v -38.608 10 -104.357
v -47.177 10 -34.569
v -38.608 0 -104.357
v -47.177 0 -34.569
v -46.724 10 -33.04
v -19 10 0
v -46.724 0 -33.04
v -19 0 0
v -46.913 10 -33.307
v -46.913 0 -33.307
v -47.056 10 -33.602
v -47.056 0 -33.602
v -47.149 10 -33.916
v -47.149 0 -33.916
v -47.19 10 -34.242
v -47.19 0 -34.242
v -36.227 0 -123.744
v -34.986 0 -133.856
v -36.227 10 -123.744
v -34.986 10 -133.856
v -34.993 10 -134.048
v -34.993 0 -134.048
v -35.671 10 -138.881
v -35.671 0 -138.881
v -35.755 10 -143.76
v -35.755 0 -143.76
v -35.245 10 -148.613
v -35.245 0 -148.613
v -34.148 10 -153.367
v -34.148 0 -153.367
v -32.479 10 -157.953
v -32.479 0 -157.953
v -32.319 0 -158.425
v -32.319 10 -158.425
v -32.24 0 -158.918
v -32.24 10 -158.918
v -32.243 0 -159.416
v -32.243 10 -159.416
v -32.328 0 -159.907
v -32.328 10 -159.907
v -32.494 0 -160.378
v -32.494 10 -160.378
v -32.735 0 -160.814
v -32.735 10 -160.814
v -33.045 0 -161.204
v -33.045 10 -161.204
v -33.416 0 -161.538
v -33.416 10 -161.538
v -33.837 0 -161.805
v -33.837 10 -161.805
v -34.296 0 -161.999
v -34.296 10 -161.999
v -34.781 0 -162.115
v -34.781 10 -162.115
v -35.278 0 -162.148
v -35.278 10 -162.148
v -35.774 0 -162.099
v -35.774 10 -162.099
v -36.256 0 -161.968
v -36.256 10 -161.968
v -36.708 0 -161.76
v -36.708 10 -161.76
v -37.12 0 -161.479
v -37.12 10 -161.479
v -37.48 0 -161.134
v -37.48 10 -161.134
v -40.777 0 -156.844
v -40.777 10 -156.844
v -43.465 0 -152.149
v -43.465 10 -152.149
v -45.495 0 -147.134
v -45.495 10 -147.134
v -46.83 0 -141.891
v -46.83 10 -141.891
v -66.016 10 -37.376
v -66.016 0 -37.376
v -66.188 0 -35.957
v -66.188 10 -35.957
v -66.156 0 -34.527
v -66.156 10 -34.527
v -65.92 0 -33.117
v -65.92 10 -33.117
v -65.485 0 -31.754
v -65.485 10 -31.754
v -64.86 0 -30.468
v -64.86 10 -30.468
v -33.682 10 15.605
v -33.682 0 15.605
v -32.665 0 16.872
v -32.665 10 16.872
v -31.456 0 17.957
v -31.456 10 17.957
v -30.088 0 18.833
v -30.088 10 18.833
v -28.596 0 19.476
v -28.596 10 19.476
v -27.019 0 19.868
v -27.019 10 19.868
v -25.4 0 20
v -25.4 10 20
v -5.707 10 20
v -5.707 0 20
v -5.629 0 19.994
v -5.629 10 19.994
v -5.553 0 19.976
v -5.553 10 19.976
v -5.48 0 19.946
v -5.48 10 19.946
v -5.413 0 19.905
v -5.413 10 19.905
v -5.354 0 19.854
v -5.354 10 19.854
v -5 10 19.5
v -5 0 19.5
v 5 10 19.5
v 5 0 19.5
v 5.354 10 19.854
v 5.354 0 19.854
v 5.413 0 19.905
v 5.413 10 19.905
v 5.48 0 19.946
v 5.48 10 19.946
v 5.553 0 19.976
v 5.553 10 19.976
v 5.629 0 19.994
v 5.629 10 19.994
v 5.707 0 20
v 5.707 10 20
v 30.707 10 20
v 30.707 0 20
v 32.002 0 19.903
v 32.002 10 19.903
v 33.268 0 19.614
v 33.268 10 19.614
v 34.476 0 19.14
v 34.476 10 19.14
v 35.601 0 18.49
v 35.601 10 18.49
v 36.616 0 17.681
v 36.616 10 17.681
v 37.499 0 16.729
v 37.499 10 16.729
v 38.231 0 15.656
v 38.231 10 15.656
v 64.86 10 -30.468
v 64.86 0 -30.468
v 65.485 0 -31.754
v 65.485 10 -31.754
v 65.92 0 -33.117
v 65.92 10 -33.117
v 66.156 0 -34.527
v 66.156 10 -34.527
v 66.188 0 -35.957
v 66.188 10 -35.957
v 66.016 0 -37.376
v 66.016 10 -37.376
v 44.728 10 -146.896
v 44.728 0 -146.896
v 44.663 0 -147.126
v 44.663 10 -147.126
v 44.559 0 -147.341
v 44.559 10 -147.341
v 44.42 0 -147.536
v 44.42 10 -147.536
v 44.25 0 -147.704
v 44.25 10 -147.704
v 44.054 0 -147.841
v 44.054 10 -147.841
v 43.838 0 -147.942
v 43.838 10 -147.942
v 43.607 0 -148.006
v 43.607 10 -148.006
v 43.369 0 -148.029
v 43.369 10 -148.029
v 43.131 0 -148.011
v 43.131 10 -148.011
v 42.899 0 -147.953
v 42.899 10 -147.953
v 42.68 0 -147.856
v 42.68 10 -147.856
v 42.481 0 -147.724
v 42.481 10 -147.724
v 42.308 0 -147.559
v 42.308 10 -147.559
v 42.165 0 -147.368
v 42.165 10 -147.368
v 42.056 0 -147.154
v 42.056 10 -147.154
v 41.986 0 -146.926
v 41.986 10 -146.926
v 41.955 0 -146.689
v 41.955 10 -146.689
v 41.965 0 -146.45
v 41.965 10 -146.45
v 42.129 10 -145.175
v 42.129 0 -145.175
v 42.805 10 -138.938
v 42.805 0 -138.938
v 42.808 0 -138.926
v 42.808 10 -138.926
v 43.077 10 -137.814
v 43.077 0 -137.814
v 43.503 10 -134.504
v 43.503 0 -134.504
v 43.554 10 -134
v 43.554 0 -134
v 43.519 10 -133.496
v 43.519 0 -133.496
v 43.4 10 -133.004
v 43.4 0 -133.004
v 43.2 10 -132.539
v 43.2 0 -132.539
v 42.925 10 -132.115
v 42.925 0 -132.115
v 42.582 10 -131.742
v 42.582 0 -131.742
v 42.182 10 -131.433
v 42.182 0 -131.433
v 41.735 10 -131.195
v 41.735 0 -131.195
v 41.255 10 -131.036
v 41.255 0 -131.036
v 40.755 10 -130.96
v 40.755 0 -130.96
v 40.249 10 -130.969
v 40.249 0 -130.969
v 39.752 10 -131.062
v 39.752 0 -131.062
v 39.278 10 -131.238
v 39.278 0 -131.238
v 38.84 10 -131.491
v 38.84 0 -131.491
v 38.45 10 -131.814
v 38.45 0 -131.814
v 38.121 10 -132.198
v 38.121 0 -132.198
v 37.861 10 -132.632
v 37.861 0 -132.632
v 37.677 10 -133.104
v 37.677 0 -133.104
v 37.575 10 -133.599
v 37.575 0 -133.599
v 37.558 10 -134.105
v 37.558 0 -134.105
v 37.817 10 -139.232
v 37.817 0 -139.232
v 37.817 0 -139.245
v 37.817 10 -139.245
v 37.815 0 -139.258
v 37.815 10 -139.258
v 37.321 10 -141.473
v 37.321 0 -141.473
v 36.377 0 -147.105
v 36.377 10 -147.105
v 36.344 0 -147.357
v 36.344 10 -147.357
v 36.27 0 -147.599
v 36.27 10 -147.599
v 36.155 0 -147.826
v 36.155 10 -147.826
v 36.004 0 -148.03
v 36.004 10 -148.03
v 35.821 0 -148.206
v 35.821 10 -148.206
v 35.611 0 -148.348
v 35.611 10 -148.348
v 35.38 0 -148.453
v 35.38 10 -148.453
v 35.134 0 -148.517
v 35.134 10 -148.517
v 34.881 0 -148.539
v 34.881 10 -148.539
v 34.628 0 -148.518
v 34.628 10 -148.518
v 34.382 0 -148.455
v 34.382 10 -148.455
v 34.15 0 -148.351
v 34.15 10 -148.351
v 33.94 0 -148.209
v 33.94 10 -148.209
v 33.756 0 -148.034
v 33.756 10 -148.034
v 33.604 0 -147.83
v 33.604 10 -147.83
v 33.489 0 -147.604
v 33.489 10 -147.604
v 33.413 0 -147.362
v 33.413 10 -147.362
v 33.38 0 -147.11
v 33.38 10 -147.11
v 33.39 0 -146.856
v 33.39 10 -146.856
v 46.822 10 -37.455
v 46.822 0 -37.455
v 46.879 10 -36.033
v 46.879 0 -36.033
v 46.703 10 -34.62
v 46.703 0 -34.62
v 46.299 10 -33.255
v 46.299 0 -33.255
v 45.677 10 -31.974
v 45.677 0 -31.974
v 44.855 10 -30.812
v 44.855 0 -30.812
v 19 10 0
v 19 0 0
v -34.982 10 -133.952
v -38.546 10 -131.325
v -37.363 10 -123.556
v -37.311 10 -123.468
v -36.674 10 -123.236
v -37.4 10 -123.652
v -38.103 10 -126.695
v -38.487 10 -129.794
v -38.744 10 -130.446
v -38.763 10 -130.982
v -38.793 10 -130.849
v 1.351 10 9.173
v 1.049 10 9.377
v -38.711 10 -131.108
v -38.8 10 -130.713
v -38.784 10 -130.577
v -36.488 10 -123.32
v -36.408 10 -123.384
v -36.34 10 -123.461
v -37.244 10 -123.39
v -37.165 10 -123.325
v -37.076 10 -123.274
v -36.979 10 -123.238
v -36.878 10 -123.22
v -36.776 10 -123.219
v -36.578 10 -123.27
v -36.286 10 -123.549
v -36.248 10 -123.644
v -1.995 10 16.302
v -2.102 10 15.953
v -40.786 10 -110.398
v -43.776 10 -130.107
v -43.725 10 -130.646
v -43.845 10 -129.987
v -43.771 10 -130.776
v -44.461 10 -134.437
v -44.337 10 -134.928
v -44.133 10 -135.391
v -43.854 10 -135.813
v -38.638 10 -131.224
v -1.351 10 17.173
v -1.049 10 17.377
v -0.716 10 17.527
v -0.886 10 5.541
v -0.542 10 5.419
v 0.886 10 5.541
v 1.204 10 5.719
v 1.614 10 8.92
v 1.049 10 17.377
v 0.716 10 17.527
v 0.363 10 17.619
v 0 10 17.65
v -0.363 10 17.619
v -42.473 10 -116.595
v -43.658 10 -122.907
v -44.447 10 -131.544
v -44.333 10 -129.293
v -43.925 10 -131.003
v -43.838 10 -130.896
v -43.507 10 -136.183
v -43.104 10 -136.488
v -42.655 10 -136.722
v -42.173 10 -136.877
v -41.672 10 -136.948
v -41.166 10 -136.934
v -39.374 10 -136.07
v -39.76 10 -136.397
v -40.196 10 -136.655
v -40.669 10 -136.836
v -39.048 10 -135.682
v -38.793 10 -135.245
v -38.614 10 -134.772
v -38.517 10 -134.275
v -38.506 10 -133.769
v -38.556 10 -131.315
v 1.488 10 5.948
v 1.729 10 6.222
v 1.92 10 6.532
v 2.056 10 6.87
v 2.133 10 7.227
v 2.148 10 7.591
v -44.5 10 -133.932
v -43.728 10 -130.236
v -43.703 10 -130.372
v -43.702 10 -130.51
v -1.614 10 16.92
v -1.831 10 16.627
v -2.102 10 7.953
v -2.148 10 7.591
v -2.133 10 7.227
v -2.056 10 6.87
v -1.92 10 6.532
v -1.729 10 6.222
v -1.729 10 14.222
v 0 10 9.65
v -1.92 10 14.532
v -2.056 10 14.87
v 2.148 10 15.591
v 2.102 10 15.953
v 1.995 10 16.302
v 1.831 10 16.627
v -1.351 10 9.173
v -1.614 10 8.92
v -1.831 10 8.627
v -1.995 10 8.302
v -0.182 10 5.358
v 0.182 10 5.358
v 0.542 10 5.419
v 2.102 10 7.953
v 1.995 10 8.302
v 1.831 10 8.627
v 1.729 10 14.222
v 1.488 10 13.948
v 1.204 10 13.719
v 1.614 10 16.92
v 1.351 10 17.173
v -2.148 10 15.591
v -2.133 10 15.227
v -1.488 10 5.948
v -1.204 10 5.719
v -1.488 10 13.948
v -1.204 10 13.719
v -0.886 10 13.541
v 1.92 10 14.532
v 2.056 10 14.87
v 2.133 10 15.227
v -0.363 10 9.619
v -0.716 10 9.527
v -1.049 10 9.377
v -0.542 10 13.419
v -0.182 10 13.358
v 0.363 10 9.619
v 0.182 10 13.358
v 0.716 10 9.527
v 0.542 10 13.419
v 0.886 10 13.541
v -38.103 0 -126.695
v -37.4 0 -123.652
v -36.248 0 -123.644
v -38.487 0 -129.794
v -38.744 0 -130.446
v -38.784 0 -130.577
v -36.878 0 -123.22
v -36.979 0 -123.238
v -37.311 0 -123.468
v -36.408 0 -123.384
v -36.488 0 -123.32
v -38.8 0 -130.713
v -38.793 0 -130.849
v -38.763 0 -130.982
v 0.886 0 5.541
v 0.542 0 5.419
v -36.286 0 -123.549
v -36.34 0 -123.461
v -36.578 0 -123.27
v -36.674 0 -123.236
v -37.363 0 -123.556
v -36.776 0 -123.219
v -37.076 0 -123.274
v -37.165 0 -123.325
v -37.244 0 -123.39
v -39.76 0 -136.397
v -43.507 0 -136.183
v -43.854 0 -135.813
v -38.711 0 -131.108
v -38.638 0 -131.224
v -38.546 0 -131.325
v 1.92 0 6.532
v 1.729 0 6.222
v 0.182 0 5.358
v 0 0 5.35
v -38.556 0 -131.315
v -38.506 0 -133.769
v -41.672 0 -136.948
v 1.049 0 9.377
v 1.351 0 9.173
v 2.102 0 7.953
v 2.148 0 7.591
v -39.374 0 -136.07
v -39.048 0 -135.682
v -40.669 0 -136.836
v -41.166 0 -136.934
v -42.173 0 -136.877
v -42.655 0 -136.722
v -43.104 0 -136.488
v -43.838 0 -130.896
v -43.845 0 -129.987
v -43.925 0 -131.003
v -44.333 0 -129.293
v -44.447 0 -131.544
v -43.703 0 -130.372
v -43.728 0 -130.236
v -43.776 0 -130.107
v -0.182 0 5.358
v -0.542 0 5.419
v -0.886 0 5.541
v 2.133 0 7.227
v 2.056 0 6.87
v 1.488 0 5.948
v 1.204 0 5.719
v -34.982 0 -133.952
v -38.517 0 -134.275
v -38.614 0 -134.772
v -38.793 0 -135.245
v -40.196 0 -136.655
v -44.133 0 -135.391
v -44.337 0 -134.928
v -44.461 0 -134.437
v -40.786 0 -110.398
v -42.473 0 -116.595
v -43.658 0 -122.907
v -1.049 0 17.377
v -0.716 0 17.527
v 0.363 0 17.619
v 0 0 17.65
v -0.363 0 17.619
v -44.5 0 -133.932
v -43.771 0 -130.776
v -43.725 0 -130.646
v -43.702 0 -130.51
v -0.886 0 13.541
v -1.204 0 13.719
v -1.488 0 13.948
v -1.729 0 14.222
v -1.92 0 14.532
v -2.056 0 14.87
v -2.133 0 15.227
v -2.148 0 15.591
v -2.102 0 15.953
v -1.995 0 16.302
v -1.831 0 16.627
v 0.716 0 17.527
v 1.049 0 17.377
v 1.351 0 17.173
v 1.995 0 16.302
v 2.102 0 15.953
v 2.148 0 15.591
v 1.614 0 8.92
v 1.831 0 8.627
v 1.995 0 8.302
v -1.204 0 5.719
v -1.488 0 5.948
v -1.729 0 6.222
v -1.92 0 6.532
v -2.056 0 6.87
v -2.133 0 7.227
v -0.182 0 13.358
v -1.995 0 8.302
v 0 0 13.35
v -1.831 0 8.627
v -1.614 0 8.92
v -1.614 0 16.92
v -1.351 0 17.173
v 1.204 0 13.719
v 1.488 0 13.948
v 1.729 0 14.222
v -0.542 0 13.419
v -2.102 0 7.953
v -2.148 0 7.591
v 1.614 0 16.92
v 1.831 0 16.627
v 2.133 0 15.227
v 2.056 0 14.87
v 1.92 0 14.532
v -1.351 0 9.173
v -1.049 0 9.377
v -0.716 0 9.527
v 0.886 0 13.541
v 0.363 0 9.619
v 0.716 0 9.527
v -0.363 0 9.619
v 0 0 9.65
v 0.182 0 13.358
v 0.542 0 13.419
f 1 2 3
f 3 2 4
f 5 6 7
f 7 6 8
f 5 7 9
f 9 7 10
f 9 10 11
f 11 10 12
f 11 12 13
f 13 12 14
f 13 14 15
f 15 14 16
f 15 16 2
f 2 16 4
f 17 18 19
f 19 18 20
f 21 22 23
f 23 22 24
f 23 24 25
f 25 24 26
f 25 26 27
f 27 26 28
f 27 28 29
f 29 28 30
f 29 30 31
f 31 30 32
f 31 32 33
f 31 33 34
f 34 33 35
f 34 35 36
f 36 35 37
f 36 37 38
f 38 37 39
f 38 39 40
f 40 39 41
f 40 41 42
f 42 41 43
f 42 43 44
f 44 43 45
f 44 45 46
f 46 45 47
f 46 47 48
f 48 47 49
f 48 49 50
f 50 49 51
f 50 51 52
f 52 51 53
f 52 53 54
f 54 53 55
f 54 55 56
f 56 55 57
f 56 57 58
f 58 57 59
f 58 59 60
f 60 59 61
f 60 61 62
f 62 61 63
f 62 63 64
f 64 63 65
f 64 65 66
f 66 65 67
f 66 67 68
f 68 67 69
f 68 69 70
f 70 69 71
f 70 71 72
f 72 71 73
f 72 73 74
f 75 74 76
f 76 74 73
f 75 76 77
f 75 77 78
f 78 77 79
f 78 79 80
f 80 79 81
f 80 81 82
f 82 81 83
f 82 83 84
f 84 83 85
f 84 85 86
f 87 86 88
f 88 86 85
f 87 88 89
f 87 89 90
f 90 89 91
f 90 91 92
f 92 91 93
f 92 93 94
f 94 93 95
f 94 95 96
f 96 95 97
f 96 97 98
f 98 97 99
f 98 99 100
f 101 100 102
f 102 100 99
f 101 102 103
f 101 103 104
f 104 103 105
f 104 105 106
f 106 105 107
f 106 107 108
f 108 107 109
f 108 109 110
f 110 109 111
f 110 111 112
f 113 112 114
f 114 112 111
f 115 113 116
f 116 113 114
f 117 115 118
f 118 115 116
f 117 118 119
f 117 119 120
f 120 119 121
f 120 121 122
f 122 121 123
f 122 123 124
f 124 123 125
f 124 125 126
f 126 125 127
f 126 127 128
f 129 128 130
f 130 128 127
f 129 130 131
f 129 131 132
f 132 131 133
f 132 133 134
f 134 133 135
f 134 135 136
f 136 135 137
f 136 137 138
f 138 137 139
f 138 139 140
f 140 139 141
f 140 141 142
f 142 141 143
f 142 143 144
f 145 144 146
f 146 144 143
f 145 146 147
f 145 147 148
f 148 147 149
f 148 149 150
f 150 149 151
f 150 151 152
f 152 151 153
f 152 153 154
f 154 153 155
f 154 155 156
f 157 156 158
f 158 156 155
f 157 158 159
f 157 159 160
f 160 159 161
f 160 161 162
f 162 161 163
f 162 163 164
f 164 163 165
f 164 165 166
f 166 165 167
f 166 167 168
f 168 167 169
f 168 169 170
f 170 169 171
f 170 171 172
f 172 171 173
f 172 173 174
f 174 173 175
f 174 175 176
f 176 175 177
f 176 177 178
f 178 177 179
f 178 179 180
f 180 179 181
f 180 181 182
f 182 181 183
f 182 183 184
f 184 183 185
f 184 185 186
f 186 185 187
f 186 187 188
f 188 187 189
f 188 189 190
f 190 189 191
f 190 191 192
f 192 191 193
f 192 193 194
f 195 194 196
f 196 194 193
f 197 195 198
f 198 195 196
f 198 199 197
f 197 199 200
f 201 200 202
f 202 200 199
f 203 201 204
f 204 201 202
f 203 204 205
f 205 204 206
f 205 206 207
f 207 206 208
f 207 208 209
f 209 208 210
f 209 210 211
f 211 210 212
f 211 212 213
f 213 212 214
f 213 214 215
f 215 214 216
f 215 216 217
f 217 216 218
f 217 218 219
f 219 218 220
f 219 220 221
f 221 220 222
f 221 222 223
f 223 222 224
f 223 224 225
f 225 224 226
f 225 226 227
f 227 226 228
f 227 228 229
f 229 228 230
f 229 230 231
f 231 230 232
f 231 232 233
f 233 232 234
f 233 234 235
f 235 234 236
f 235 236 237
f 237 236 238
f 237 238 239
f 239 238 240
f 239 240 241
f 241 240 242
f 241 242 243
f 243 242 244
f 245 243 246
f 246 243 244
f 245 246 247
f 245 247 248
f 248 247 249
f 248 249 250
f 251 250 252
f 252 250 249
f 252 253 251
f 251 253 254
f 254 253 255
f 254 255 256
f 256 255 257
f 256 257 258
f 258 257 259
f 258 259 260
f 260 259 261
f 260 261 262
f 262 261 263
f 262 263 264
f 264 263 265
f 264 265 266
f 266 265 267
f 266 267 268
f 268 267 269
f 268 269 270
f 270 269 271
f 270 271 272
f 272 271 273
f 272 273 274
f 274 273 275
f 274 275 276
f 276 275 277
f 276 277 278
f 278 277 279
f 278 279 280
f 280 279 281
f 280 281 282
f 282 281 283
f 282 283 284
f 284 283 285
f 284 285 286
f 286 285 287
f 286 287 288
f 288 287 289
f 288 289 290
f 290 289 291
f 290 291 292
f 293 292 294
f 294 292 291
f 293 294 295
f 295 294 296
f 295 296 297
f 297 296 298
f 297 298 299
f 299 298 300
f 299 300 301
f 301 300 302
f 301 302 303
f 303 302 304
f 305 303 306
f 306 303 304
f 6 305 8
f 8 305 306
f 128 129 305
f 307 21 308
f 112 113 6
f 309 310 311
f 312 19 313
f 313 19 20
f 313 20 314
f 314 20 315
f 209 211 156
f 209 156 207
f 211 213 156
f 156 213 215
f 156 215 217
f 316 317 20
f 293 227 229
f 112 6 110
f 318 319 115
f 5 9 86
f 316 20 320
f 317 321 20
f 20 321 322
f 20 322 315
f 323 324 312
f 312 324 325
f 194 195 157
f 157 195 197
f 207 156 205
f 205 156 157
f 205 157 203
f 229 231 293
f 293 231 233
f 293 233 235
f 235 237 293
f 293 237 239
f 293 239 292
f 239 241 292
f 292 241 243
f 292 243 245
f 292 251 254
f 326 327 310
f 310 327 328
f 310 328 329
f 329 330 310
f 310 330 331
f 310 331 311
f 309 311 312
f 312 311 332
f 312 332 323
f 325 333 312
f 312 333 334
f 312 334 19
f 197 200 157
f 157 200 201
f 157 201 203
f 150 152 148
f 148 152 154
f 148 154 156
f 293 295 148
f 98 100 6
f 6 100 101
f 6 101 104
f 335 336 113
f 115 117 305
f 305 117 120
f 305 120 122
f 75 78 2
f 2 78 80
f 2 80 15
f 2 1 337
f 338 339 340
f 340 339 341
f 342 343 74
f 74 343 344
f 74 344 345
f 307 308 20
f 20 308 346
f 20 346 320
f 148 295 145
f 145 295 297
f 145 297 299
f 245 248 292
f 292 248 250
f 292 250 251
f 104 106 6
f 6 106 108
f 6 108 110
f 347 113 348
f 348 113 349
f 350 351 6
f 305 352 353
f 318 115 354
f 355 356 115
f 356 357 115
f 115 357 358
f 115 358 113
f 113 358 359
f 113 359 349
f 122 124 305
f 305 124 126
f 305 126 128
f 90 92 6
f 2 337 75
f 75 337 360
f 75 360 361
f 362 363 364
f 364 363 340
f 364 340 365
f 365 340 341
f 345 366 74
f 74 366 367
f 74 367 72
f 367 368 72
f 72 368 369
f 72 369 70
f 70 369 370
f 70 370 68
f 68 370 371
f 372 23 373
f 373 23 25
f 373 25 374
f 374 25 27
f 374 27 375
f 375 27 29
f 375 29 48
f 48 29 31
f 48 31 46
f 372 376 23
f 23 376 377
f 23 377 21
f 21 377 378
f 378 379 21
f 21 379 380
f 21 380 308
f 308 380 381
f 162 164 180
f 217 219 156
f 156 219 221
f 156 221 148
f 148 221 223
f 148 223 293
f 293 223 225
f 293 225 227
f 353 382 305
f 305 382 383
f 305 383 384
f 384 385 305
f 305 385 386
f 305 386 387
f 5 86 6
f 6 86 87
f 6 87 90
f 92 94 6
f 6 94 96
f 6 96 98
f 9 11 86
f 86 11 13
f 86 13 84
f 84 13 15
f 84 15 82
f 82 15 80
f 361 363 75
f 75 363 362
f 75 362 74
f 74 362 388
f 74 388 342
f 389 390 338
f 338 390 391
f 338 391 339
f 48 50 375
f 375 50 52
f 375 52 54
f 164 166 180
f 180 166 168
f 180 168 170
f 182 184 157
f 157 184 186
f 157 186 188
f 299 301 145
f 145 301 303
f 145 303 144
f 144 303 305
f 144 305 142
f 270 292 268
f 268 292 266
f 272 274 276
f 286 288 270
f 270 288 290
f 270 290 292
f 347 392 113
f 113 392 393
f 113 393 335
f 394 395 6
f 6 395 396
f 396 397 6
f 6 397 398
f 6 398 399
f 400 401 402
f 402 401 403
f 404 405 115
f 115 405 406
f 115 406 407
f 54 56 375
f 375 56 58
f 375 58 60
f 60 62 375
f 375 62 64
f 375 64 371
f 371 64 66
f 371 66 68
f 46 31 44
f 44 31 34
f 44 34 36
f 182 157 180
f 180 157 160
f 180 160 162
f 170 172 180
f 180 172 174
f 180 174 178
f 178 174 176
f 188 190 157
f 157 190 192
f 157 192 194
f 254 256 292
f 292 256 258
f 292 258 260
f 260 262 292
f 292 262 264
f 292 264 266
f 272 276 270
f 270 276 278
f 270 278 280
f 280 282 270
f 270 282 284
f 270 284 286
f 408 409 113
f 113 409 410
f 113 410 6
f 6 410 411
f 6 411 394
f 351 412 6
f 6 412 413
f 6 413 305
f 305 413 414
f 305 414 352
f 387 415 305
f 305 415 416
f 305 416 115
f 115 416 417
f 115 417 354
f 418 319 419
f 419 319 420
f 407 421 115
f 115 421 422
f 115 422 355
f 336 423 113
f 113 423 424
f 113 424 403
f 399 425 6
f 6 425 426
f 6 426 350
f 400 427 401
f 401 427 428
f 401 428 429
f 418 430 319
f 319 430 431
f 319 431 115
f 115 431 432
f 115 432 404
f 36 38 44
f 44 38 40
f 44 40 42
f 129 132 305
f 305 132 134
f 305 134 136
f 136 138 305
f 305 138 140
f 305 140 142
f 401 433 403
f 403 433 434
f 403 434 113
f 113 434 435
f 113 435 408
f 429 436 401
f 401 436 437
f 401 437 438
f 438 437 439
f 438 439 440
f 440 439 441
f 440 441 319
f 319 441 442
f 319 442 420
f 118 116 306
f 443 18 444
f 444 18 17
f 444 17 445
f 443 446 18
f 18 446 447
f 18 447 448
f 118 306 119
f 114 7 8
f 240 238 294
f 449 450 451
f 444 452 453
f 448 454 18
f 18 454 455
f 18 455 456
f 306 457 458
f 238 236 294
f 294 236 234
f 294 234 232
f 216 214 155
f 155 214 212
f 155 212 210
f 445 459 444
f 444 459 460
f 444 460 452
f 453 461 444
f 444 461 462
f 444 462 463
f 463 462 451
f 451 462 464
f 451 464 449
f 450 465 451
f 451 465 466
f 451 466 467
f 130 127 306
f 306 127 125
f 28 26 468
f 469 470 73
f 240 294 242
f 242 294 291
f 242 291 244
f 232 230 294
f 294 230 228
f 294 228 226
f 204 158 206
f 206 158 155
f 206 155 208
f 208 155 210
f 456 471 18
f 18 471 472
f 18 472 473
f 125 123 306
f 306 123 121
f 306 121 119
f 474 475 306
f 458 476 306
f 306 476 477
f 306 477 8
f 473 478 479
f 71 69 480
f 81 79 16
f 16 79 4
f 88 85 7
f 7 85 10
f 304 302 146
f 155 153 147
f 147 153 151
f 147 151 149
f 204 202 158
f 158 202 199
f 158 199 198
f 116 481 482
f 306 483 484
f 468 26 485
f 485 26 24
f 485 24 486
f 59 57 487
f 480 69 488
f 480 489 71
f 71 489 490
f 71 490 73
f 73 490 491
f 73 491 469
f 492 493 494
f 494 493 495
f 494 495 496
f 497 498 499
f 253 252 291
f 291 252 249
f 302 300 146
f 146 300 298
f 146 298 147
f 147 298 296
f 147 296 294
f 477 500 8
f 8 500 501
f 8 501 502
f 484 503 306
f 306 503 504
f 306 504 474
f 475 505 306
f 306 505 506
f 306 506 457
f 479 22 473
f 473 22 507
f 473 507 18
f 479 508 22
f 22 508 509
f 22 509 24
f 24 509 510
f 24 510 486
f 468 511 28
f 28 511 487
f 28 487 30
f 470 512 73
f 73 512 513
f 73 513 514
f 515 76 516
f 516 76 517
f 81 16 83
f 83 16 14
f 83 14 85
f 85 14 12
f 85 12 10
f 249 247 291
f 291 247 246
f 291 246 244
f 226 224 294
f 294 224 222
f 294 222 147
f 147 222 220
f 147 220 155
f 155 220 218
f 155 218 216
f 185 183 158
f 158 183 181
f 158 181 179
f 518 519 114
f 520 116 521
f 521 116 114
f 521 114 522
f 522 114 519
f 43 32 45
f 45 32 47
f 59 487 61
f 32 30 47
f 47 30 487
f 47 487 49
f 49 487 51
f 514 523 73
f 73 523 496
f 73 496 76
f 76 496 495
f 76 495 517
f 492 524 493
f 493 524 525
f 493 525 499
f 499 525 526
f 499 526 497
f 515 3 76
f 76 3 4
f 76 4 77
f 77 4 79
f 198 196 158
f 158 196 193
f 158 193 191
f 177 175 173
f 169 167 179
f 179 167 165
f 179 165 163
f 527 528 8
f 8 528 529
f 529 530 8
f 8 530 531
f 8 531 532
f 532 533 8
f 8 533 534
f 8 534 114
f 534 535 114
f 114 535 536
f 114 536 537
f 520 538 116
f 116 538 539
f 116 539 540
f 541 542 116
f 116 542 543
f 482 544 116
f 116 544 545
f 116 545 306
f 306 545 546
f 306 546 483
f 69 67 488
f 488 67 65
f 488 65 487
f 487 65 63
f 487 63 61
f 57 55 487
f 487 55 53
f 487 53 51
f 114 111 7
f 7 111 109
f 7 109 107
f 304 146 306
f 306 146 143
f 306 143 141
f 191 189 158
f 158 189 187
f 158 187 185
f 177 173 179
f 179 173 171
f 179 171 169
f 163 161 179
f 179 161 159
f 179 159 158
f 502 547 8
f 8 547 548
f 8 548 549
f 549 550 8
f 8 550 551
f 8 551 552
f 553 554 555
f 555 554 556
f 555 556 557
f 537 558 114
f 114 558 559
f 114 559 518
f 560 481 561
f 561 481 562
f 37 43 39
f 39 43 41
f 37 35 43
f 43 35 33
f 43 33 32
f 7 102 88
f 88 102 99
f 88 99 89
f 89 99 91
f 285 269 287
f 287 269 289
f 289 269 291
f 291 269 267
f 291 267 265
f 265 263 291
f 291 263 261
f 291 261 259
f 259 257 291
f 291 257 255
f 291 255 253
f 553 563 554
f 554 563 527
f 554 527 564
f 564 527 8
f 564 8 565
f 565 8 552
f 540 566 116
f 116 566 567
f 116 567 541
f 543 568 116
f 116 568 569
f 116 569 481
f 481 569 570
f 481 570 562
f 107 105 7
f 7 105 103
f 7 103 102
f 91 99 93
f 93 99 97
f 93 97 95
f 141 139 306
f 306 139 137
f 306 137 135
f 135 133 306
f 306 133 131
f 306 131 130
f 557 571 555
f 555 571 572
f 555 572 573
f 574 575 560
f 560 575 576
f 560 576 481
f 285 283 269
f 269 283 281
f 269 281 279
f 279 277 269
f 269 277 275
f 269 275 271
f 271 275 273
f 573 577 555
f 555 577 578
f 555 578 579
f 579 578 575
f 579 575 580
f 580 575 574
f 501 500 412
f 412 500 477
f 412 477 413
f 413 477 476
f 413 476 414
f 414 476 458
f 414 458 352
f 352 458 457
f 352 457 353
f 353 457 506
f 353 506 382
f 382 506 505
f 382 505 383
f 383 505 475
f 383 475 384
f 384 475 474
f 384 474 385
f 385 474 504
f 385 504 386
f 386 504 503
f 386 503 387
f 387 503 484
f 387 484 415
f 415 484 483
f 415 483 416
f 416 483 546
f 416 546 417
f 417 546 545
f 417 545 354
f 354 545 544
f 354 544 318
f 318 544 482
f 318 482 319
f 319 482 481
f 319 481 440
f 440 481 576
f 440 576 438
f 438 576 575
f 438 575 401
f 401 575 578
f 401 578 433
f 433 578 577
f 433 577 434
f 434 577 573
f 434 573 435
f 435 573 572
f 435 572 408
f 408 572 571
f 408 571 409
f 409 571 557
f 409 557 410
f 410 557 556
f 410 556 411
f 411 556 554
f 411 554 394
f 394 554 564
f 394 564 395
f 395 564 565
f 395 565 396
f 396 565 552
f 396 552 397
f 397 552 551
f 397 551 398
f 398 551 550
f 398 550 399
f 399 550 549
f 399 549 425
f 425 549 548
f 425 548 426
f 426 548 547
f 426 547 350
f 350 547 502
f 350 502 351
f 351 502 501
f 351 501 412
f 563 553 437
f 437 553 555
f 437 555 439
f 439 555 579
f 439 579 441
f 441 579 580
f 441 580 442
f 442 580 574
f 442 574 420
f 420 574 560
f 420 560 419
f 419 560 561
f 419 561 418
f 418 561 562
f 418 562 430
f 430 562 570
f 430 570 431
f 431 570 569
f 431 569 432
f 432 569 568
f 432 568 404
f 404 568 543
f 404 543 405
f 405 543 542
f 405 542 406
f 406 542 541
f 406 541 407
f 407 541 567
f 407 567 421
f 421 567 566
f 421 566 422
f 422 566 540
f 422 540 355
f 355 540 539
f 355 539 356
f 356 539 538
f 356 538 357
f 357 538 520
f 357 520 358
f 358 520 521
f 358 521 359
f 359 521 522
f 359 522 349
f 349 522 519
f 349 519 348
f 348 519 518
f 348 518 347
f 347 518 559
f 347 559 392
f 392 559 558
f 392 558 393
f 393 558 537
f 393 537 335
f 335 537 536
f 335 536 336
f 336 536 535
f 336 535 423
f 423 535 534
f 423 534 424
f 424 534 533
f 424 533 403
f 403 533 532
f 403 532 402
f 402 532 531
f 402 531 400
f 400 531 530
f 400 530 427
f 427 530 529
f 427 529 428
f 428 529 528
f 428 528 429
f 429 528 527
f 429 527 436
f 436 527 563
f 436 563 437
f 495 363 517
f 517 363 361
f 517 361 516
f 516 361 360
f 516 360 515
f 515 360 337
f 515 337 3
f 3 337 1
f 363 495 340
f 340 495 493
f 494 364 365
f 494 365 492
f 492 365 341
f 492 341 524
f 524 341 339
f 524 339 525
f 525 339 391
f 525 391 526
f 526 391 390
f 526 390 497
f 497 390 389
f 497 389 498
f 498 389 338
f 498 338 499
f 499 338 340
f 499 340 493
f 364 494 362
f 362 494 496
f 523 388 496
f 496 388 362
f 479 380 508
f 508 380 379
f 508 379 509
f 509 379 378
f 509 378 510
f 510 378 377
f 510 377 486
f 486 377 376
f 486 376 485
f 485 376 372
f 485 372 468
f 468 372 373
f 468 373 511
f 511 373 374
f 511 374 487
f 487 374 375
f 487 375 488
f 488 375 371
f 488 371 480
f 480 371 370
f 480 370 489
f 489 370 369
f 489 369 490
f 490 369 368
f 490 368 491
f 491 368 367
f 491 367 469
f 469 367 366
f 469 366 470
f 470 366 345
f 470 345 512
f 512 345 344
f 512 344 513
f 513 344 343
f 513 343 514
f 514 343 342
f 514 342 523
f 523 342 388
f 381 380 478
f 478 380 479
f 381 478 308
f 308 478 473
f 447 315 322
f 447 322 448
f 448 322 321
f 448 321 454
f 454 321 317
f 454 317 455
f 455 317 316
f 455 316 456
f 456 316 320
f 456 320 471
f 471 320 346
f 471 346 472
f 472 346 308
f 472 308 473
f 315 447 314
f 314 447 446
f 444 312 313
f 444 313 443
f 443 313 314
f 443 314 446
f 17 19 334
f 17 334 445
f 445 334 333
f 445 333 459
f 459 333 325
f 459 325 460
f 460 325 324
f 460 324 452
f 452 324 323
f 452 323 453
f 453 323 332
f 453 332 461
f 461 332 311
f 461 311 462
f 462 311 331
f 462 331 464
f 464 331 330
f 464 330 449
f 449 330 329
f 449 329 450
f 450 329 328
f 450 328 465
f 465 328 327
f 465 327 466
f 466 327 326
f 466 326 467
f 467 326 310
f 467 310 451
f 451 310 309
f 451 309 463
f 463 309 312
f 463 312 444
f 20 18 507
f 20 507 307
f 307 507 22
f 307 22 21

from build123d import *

# Parameters (mm, degrees)
EXTRUDE_1_DEPTH     = 10
CUT_EXTRUDE_1_REACH = 177.427
SKETCH_2_R          = 2.15
FILLET_1_R          = 0.6


with BuildPart() as part:
    # 草图1 → 凸台-拉伸1 (new body)
    with BuildSketch(Plane(origin=(0, 0, 0), x_dir=(1, 0, 0), z_dir=(0, 1, 0))):
        with BuildLine():
            Line((-19, 0), (19, 0))
            Line((19, 0), (44.854614973, 30.81233028))
            ThreePointArc((44.854614973, 30.81233028), (46.529317931, 33.929104052), (46.82231051, 37.455159084))
            Line((46.82231051, 37.455159084), (33.389549678, 146.856216784))
            ThreePointArc((33.389549678, 146.856216784), (34.753999407, 148.533855984), (36.376927445, 147.104765038))
            ThreePointArc((36.376927445, 147.104765038), (36.892496808, 144.296291333), (37.320815542, 141.473193853))
            Line((37.320815542, 141.473193853), (37.815132232, 139.258398169))
            ThreePointArc((37.815132232, 139.258398169), (37.817176658, 139.245056143), (37.817405692, 139.231560332))
            Line((37.817405692, 139.231560332), (37.557917484, 134.104765038))
            ThreePointArc((37.557917484, 134.104765038), (40.754926912, 130.959847465), (43.503129215, 134.503681536))
            Line((43.503129215, 134.503681536), (43.077003941, 137.813685213))
            Line((43.077003941, 137.813685213), (42.807637334, 138.925557366))
            ThreePointArc((42.807637334, 138.925557366), (42.806315787, 138.931905108), (42.80540838, 138.938325149))
            Line((42.80540838, 138.938325149), (42.129277547, 145.175318139))
            Line((42.129277547, 145.175318139), (41.965181023, 146.44996701))
            ThreePointArc((41.965181023, 146.44996701), (43.130662006, 148.010841711), (44.727999785, 146.895858405))
            Line((44.727999785, 146.895858405), (66.016482503, 37.376109146))
            ThreePointArc((66.016482503, 37.376109146), (66.063066684, 33.817543133), (64.860464706, 30.468019192))
            Line((64.860464706, 30.468019192), (38.23055697, -15.656334008))
            ThreePointArc((38.23055697, -15.656334008), (35.050772773, -18.836118205), (30.707106781, -20))
            Line((30.707106781, -20), (5.707106781, -20))
            ThreePointArc((5.707106781, -20), (5.515765065, -19.961939766), (5.353553391, -19.853553391))
            Line((5.353553391, -19.853553391), (5, -19.5))
            Line((5, -19.5), (-5, -19.5))
            Line((-5, -19.5), (-5.353553391, -19.853553391))
            ThreePointArc((-5.353553391, -19.853553391), (-5.515765065, -19.961939766), (-5.707106781, -20))
            Line((-5.707106781, -20), (-25.399802658, -20))
            ThreePointArc((-25.399802658, -20), (-30.087775174, -18.833058003), (-33.681629288, -15.604582738))
            Line((-33.681629288, -15.604582738), (-64.860464706, 30.468019192))
            ThreePointArc((-64.860464706, 30.468019192), (-66.063066684, 33.817543133), (-66.016482503, 37.376109146))
            Line((-66.016482503, 37.376109146), (-46.829620455, 141.890886738))
            ThreePointArc((-46.829620455, 141.890886738), (-43.465252598, 152.148967586), (-37.480163066, 161.13372674))
            ThreePointArc((-37.480163066, 161.13372674), (-33.620696298, 161.680216975), (-32.479267504, 157.953116813))
            ThreePointArc((-32.479267504, 157.953116813), (-35.579400499, 146.14570295), (-34.973851142, 133.953116813))
            Line((-34.973851142, 133.953116813), (-47.176674229, 34.569098196))
            ThreePointArc((-47.176674229, 34.569098196), (-47.109221395, 33.75732882), (-46.723670812, 33.03978429))
            Line((-46.723670812, 33.03978429), (-19, 0))
        make_face()
    extrude(amount=EXTRUDE_1_DEPTH)

    # 草图2 → 切除-拉伸1 (cut, up to next)
    with BuildSketch(Plane(origin=(0, 10, 0), x_dir=(1, 0, 0), z_dir=(0, 1, 0)), mode=Mode.PRIVATE) as cut_extrude_1_sk1:
        with Locations(Location((0, -15.5, 0), (0, 0, 270))):
            Circle(SKETCH_2_R)
    cut_extrude_1_tool1 = extrude(cut_extrude_1_sk1.sketch, amount=-CUT_EXTRUDE_1_REACH, mode=Mode.PRIVATE) & part.part
    # 草图2 → 切除-拉伸1 (cut, up to next)
    with BuildSketch(Plane(origin=(0, 10, 0), x_dir=(1, 0, 0), z_dir=(0, 1, 0)), mode=Mode.PRIVATE) as cut_extrude_1_sk2:
        with Locations(Location((0, -7.5, 0), (0, 0, 270))):
            Circle(SKETCH_2_R)
    cut_extrude_1_tool2 = extrude(cut_extrude_1_sk2.sketch, amount=-CUT_EXTRUDE_1_REACH, mode=Mode.PRIVATE) & part.part
    # 草图2 → 切除-拉伸1 (cut, up to next)
    with BuildSketch(Plane(origin=(0, 10, 0), x_dir=(1, 0, 0), z_dir=(0, 1, 0)), mode=Mode.PRIVATE) as cut_extrude_1_sk3:
        with BuildLine():
            Line((-36.549558395, 121.120011078), (-38.607748185, 104.35740041))
            ThreePointArc((-38.607748185, 104.35740041), (-42.47341142, 116.594845153), (-44.332546284, 129.292956179))
            Line((-44.332546284, 129.292956179), (-43.845113062, 129.987442667))
            ThreePointArc((-43.845113062, 129.987442667), (-43.702378092, 130.509625408), (-43.924830211, 131.003146575))
            Line((-43.924830211, 131.003146575), (-44.447419993, 131.543571067))
            ThreePointArc((-44.447419993, 131.543571067), (-44.482588605, 132.737575539), (-44.499925482, 133.931972015))
            ThreePointArc((-44.499925482, 133.931972015), (-41.418283025, 136.952003662), (-38.505677682, 133.768634142))
            ThreePointArc((-38.505677682, 133.768634142), (-38.556072369, 132.542586282), (-38.556286633, 131.315503182))
            Line((-38.556286633, 131.315503182), (-38.546052546, 131.325051295))
            ThreePointArc((-38.546052546, 131.325051295), (-38.780683801, 130.91622187), (-38.744387532, 130.446247504))
            Line((-38.744387532, 130.446247504), (-38.486748585, 129.793872308))
            ThreePointArc((-38.486748585, 129.793872308), (-37.841140795, 125.384806825), (-36.549558395, 121.120011078))
        make_face()
    cut_extrude_1_tool3 = extrude(cut_extrude_1_sk3.sketch, amount=-CUT_EXTRUDE_1_REACH, mode=Mode.PRIVATE) & part.part
    add(cut_extrude_1_tool1.solids().sort_by_distance((0, 10, 15.5))[0], mode=Mode.SUBTRACT)
    add(cut_extrude_1_tool2.solids().sort_by_distance((0, 10, 7.5))[0], mode=Mode.SUBTRACT)
    add(cut_extrude_1_tool3.solids().sort_by_distance((-40.502089, 10, -123.156617))[0], mode=Mode.SUBTRACT)

    # 圆角1
    fillet_1_edges = [part.edges().sort_by_distance(p)[0] for p in [
        (-36.549558395, 5, -121.120011078),
        (-34.973851142, 5, -133.953116813),
    ]]
    fillet(fillet_1_edges, radius=FILLET_1_R)


solid = part.part
